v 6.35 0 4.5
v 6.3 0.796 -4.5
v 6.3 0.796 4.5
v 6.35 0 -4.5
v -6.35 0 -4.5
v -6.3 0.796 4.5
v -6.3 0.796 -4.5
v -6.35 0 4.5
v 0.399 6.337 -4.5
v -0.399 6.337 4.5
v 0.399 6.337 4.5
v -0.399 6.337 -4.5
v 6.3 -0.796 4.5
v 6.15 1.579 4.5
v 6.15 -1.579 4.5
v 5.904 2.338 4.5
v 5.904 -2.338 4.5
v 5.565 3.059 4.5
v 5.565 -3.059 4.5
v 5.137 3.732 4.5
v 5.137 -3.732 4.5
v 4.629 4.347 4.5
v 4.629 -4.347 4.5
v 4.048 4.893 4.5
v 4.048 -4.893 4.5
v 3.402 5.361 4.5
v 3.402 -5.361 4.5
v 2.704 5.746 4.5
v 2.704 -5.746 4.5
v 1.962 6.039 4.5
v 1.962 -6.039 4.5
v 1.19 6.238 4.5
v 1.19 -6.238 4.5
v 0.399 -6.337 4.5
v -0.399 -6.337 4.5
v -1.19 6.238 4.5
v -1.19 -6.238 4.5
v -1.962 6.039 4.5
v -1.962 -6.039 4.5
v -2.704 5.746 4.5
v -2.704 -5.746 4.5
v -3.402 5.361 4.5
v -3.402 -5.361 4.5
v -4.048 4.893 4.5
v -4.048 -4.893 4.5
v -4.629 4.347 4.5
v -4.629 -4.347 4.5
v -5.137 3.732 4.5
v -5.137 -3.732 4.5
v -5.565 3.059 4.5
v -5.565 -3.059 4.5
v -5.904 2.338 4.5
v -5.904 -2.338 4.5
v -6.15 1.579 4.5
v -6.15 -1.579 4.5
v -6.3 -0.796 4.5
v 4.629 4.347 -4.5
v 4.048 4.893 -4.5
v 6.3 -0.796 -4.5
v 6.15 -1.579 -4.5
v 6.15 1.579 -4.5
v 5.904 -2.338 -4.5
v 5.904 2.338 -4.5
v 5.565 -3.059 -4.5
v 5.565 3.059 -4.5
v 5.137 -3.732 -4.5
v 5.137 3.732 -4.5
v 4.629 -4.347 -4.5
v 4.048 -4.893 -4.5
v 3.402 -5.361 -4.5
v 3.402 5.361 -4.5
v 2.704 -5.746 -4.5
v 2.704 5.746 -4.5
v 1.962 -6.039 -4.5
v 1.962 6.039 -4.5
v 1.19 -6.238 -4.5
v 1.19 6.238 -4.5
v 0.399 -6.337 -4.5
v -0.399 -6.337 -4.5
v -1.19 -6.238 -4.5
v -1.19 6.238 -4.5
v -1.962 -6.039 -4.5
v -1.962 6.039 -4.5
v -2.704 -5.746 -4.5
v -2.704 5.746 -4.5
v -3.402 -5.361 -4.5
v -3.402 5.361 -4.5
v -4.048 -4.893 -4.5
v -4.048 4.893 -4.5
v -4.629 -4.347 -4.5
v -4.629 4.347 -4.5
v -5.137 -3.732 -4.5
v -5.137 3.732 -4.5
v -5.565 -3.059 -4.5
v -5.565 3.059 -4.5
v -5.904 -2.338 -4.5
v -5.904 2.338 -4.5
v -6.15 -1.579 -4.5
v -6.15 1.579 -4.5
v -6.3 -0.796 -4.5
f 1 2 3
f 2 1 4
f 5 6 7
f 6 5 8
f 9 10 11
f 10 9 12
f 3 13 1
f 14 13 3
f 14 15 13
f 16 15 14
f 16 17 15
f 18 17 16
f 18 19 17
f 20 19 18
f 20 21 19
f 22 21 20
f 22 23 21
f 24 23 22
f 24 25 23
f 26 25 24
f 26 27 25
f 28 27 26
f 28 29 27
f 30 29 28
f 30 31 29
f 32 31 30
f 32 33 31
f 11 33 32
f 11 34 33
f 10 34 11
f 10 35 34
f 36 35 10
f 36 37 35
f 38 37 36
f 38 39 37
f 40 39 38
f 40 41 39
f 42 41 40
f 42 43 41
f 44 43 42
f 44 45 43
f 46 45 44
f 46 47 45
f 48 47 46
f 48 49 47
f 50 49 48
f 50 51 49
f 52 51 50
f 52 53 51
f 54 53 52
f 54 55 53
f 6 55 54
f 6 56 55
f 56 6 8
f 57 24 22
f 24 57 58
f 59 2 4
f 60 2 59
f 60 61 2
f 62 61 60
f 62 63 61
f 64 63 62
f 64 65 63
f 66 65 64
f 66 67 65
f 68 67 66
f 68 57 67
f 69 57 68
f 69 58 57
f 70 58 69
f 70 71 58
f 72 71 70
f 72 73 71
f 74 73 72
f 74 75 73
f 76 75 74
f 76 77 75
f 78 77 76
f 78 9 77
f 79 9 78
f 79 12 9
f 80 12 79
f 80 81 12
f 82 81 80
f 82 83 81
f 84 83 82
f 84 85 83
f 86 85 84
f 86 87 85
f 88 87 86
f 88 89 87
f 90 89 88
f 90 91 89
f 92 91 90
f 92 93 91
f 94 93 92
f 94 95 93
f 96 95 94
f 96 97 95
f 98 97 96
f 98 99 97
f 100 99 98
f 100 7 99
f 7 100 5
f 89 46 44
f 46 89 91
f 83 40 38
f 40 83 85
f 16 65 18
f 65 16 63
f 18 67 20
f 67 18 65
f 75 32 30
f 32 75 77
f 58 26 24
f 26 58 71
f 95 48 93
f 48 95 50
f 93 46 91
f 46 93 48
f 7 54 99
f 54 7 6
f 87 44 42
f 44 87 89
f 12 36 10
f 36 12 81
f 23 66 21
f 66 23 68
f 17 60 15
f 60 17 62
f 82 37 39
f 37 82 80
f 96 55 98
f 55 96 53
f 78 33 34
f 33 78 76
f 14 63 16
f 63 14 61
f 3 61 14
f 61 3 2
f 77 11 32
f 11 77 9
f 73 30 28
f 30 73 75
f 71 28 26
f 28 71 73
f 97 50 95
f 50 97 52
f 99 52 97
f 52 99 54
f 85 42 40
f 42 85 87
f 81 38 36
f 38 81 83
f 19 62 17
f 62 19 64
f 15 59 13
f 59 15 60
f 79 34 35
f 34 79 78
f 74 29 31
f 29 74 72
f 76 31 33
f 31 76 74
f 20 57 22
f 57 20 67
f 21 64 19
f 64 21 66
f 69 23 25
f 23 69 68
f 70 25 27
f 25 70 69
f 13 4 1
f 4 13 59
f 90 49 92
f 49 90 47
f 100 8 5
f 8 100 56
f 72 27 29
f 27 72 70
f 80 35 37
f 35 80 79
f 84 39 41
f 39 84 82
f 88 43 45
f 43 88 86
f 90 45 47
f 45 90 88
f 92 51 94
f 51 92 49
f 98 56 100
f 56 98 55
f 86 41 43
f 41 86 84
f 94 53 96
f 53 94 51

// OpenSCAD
$fn = 50;


difference() {
	union() {
		translate(v = [0, 0, -4.5000000000]) {
			cylinder(h = 9, r = 6.3500000000);
		}
	}
	union() {
		translate(v = [0, 0, -100.0000000000]) {
			cylinder(h = 200, r = 0);
		}
	}
}
